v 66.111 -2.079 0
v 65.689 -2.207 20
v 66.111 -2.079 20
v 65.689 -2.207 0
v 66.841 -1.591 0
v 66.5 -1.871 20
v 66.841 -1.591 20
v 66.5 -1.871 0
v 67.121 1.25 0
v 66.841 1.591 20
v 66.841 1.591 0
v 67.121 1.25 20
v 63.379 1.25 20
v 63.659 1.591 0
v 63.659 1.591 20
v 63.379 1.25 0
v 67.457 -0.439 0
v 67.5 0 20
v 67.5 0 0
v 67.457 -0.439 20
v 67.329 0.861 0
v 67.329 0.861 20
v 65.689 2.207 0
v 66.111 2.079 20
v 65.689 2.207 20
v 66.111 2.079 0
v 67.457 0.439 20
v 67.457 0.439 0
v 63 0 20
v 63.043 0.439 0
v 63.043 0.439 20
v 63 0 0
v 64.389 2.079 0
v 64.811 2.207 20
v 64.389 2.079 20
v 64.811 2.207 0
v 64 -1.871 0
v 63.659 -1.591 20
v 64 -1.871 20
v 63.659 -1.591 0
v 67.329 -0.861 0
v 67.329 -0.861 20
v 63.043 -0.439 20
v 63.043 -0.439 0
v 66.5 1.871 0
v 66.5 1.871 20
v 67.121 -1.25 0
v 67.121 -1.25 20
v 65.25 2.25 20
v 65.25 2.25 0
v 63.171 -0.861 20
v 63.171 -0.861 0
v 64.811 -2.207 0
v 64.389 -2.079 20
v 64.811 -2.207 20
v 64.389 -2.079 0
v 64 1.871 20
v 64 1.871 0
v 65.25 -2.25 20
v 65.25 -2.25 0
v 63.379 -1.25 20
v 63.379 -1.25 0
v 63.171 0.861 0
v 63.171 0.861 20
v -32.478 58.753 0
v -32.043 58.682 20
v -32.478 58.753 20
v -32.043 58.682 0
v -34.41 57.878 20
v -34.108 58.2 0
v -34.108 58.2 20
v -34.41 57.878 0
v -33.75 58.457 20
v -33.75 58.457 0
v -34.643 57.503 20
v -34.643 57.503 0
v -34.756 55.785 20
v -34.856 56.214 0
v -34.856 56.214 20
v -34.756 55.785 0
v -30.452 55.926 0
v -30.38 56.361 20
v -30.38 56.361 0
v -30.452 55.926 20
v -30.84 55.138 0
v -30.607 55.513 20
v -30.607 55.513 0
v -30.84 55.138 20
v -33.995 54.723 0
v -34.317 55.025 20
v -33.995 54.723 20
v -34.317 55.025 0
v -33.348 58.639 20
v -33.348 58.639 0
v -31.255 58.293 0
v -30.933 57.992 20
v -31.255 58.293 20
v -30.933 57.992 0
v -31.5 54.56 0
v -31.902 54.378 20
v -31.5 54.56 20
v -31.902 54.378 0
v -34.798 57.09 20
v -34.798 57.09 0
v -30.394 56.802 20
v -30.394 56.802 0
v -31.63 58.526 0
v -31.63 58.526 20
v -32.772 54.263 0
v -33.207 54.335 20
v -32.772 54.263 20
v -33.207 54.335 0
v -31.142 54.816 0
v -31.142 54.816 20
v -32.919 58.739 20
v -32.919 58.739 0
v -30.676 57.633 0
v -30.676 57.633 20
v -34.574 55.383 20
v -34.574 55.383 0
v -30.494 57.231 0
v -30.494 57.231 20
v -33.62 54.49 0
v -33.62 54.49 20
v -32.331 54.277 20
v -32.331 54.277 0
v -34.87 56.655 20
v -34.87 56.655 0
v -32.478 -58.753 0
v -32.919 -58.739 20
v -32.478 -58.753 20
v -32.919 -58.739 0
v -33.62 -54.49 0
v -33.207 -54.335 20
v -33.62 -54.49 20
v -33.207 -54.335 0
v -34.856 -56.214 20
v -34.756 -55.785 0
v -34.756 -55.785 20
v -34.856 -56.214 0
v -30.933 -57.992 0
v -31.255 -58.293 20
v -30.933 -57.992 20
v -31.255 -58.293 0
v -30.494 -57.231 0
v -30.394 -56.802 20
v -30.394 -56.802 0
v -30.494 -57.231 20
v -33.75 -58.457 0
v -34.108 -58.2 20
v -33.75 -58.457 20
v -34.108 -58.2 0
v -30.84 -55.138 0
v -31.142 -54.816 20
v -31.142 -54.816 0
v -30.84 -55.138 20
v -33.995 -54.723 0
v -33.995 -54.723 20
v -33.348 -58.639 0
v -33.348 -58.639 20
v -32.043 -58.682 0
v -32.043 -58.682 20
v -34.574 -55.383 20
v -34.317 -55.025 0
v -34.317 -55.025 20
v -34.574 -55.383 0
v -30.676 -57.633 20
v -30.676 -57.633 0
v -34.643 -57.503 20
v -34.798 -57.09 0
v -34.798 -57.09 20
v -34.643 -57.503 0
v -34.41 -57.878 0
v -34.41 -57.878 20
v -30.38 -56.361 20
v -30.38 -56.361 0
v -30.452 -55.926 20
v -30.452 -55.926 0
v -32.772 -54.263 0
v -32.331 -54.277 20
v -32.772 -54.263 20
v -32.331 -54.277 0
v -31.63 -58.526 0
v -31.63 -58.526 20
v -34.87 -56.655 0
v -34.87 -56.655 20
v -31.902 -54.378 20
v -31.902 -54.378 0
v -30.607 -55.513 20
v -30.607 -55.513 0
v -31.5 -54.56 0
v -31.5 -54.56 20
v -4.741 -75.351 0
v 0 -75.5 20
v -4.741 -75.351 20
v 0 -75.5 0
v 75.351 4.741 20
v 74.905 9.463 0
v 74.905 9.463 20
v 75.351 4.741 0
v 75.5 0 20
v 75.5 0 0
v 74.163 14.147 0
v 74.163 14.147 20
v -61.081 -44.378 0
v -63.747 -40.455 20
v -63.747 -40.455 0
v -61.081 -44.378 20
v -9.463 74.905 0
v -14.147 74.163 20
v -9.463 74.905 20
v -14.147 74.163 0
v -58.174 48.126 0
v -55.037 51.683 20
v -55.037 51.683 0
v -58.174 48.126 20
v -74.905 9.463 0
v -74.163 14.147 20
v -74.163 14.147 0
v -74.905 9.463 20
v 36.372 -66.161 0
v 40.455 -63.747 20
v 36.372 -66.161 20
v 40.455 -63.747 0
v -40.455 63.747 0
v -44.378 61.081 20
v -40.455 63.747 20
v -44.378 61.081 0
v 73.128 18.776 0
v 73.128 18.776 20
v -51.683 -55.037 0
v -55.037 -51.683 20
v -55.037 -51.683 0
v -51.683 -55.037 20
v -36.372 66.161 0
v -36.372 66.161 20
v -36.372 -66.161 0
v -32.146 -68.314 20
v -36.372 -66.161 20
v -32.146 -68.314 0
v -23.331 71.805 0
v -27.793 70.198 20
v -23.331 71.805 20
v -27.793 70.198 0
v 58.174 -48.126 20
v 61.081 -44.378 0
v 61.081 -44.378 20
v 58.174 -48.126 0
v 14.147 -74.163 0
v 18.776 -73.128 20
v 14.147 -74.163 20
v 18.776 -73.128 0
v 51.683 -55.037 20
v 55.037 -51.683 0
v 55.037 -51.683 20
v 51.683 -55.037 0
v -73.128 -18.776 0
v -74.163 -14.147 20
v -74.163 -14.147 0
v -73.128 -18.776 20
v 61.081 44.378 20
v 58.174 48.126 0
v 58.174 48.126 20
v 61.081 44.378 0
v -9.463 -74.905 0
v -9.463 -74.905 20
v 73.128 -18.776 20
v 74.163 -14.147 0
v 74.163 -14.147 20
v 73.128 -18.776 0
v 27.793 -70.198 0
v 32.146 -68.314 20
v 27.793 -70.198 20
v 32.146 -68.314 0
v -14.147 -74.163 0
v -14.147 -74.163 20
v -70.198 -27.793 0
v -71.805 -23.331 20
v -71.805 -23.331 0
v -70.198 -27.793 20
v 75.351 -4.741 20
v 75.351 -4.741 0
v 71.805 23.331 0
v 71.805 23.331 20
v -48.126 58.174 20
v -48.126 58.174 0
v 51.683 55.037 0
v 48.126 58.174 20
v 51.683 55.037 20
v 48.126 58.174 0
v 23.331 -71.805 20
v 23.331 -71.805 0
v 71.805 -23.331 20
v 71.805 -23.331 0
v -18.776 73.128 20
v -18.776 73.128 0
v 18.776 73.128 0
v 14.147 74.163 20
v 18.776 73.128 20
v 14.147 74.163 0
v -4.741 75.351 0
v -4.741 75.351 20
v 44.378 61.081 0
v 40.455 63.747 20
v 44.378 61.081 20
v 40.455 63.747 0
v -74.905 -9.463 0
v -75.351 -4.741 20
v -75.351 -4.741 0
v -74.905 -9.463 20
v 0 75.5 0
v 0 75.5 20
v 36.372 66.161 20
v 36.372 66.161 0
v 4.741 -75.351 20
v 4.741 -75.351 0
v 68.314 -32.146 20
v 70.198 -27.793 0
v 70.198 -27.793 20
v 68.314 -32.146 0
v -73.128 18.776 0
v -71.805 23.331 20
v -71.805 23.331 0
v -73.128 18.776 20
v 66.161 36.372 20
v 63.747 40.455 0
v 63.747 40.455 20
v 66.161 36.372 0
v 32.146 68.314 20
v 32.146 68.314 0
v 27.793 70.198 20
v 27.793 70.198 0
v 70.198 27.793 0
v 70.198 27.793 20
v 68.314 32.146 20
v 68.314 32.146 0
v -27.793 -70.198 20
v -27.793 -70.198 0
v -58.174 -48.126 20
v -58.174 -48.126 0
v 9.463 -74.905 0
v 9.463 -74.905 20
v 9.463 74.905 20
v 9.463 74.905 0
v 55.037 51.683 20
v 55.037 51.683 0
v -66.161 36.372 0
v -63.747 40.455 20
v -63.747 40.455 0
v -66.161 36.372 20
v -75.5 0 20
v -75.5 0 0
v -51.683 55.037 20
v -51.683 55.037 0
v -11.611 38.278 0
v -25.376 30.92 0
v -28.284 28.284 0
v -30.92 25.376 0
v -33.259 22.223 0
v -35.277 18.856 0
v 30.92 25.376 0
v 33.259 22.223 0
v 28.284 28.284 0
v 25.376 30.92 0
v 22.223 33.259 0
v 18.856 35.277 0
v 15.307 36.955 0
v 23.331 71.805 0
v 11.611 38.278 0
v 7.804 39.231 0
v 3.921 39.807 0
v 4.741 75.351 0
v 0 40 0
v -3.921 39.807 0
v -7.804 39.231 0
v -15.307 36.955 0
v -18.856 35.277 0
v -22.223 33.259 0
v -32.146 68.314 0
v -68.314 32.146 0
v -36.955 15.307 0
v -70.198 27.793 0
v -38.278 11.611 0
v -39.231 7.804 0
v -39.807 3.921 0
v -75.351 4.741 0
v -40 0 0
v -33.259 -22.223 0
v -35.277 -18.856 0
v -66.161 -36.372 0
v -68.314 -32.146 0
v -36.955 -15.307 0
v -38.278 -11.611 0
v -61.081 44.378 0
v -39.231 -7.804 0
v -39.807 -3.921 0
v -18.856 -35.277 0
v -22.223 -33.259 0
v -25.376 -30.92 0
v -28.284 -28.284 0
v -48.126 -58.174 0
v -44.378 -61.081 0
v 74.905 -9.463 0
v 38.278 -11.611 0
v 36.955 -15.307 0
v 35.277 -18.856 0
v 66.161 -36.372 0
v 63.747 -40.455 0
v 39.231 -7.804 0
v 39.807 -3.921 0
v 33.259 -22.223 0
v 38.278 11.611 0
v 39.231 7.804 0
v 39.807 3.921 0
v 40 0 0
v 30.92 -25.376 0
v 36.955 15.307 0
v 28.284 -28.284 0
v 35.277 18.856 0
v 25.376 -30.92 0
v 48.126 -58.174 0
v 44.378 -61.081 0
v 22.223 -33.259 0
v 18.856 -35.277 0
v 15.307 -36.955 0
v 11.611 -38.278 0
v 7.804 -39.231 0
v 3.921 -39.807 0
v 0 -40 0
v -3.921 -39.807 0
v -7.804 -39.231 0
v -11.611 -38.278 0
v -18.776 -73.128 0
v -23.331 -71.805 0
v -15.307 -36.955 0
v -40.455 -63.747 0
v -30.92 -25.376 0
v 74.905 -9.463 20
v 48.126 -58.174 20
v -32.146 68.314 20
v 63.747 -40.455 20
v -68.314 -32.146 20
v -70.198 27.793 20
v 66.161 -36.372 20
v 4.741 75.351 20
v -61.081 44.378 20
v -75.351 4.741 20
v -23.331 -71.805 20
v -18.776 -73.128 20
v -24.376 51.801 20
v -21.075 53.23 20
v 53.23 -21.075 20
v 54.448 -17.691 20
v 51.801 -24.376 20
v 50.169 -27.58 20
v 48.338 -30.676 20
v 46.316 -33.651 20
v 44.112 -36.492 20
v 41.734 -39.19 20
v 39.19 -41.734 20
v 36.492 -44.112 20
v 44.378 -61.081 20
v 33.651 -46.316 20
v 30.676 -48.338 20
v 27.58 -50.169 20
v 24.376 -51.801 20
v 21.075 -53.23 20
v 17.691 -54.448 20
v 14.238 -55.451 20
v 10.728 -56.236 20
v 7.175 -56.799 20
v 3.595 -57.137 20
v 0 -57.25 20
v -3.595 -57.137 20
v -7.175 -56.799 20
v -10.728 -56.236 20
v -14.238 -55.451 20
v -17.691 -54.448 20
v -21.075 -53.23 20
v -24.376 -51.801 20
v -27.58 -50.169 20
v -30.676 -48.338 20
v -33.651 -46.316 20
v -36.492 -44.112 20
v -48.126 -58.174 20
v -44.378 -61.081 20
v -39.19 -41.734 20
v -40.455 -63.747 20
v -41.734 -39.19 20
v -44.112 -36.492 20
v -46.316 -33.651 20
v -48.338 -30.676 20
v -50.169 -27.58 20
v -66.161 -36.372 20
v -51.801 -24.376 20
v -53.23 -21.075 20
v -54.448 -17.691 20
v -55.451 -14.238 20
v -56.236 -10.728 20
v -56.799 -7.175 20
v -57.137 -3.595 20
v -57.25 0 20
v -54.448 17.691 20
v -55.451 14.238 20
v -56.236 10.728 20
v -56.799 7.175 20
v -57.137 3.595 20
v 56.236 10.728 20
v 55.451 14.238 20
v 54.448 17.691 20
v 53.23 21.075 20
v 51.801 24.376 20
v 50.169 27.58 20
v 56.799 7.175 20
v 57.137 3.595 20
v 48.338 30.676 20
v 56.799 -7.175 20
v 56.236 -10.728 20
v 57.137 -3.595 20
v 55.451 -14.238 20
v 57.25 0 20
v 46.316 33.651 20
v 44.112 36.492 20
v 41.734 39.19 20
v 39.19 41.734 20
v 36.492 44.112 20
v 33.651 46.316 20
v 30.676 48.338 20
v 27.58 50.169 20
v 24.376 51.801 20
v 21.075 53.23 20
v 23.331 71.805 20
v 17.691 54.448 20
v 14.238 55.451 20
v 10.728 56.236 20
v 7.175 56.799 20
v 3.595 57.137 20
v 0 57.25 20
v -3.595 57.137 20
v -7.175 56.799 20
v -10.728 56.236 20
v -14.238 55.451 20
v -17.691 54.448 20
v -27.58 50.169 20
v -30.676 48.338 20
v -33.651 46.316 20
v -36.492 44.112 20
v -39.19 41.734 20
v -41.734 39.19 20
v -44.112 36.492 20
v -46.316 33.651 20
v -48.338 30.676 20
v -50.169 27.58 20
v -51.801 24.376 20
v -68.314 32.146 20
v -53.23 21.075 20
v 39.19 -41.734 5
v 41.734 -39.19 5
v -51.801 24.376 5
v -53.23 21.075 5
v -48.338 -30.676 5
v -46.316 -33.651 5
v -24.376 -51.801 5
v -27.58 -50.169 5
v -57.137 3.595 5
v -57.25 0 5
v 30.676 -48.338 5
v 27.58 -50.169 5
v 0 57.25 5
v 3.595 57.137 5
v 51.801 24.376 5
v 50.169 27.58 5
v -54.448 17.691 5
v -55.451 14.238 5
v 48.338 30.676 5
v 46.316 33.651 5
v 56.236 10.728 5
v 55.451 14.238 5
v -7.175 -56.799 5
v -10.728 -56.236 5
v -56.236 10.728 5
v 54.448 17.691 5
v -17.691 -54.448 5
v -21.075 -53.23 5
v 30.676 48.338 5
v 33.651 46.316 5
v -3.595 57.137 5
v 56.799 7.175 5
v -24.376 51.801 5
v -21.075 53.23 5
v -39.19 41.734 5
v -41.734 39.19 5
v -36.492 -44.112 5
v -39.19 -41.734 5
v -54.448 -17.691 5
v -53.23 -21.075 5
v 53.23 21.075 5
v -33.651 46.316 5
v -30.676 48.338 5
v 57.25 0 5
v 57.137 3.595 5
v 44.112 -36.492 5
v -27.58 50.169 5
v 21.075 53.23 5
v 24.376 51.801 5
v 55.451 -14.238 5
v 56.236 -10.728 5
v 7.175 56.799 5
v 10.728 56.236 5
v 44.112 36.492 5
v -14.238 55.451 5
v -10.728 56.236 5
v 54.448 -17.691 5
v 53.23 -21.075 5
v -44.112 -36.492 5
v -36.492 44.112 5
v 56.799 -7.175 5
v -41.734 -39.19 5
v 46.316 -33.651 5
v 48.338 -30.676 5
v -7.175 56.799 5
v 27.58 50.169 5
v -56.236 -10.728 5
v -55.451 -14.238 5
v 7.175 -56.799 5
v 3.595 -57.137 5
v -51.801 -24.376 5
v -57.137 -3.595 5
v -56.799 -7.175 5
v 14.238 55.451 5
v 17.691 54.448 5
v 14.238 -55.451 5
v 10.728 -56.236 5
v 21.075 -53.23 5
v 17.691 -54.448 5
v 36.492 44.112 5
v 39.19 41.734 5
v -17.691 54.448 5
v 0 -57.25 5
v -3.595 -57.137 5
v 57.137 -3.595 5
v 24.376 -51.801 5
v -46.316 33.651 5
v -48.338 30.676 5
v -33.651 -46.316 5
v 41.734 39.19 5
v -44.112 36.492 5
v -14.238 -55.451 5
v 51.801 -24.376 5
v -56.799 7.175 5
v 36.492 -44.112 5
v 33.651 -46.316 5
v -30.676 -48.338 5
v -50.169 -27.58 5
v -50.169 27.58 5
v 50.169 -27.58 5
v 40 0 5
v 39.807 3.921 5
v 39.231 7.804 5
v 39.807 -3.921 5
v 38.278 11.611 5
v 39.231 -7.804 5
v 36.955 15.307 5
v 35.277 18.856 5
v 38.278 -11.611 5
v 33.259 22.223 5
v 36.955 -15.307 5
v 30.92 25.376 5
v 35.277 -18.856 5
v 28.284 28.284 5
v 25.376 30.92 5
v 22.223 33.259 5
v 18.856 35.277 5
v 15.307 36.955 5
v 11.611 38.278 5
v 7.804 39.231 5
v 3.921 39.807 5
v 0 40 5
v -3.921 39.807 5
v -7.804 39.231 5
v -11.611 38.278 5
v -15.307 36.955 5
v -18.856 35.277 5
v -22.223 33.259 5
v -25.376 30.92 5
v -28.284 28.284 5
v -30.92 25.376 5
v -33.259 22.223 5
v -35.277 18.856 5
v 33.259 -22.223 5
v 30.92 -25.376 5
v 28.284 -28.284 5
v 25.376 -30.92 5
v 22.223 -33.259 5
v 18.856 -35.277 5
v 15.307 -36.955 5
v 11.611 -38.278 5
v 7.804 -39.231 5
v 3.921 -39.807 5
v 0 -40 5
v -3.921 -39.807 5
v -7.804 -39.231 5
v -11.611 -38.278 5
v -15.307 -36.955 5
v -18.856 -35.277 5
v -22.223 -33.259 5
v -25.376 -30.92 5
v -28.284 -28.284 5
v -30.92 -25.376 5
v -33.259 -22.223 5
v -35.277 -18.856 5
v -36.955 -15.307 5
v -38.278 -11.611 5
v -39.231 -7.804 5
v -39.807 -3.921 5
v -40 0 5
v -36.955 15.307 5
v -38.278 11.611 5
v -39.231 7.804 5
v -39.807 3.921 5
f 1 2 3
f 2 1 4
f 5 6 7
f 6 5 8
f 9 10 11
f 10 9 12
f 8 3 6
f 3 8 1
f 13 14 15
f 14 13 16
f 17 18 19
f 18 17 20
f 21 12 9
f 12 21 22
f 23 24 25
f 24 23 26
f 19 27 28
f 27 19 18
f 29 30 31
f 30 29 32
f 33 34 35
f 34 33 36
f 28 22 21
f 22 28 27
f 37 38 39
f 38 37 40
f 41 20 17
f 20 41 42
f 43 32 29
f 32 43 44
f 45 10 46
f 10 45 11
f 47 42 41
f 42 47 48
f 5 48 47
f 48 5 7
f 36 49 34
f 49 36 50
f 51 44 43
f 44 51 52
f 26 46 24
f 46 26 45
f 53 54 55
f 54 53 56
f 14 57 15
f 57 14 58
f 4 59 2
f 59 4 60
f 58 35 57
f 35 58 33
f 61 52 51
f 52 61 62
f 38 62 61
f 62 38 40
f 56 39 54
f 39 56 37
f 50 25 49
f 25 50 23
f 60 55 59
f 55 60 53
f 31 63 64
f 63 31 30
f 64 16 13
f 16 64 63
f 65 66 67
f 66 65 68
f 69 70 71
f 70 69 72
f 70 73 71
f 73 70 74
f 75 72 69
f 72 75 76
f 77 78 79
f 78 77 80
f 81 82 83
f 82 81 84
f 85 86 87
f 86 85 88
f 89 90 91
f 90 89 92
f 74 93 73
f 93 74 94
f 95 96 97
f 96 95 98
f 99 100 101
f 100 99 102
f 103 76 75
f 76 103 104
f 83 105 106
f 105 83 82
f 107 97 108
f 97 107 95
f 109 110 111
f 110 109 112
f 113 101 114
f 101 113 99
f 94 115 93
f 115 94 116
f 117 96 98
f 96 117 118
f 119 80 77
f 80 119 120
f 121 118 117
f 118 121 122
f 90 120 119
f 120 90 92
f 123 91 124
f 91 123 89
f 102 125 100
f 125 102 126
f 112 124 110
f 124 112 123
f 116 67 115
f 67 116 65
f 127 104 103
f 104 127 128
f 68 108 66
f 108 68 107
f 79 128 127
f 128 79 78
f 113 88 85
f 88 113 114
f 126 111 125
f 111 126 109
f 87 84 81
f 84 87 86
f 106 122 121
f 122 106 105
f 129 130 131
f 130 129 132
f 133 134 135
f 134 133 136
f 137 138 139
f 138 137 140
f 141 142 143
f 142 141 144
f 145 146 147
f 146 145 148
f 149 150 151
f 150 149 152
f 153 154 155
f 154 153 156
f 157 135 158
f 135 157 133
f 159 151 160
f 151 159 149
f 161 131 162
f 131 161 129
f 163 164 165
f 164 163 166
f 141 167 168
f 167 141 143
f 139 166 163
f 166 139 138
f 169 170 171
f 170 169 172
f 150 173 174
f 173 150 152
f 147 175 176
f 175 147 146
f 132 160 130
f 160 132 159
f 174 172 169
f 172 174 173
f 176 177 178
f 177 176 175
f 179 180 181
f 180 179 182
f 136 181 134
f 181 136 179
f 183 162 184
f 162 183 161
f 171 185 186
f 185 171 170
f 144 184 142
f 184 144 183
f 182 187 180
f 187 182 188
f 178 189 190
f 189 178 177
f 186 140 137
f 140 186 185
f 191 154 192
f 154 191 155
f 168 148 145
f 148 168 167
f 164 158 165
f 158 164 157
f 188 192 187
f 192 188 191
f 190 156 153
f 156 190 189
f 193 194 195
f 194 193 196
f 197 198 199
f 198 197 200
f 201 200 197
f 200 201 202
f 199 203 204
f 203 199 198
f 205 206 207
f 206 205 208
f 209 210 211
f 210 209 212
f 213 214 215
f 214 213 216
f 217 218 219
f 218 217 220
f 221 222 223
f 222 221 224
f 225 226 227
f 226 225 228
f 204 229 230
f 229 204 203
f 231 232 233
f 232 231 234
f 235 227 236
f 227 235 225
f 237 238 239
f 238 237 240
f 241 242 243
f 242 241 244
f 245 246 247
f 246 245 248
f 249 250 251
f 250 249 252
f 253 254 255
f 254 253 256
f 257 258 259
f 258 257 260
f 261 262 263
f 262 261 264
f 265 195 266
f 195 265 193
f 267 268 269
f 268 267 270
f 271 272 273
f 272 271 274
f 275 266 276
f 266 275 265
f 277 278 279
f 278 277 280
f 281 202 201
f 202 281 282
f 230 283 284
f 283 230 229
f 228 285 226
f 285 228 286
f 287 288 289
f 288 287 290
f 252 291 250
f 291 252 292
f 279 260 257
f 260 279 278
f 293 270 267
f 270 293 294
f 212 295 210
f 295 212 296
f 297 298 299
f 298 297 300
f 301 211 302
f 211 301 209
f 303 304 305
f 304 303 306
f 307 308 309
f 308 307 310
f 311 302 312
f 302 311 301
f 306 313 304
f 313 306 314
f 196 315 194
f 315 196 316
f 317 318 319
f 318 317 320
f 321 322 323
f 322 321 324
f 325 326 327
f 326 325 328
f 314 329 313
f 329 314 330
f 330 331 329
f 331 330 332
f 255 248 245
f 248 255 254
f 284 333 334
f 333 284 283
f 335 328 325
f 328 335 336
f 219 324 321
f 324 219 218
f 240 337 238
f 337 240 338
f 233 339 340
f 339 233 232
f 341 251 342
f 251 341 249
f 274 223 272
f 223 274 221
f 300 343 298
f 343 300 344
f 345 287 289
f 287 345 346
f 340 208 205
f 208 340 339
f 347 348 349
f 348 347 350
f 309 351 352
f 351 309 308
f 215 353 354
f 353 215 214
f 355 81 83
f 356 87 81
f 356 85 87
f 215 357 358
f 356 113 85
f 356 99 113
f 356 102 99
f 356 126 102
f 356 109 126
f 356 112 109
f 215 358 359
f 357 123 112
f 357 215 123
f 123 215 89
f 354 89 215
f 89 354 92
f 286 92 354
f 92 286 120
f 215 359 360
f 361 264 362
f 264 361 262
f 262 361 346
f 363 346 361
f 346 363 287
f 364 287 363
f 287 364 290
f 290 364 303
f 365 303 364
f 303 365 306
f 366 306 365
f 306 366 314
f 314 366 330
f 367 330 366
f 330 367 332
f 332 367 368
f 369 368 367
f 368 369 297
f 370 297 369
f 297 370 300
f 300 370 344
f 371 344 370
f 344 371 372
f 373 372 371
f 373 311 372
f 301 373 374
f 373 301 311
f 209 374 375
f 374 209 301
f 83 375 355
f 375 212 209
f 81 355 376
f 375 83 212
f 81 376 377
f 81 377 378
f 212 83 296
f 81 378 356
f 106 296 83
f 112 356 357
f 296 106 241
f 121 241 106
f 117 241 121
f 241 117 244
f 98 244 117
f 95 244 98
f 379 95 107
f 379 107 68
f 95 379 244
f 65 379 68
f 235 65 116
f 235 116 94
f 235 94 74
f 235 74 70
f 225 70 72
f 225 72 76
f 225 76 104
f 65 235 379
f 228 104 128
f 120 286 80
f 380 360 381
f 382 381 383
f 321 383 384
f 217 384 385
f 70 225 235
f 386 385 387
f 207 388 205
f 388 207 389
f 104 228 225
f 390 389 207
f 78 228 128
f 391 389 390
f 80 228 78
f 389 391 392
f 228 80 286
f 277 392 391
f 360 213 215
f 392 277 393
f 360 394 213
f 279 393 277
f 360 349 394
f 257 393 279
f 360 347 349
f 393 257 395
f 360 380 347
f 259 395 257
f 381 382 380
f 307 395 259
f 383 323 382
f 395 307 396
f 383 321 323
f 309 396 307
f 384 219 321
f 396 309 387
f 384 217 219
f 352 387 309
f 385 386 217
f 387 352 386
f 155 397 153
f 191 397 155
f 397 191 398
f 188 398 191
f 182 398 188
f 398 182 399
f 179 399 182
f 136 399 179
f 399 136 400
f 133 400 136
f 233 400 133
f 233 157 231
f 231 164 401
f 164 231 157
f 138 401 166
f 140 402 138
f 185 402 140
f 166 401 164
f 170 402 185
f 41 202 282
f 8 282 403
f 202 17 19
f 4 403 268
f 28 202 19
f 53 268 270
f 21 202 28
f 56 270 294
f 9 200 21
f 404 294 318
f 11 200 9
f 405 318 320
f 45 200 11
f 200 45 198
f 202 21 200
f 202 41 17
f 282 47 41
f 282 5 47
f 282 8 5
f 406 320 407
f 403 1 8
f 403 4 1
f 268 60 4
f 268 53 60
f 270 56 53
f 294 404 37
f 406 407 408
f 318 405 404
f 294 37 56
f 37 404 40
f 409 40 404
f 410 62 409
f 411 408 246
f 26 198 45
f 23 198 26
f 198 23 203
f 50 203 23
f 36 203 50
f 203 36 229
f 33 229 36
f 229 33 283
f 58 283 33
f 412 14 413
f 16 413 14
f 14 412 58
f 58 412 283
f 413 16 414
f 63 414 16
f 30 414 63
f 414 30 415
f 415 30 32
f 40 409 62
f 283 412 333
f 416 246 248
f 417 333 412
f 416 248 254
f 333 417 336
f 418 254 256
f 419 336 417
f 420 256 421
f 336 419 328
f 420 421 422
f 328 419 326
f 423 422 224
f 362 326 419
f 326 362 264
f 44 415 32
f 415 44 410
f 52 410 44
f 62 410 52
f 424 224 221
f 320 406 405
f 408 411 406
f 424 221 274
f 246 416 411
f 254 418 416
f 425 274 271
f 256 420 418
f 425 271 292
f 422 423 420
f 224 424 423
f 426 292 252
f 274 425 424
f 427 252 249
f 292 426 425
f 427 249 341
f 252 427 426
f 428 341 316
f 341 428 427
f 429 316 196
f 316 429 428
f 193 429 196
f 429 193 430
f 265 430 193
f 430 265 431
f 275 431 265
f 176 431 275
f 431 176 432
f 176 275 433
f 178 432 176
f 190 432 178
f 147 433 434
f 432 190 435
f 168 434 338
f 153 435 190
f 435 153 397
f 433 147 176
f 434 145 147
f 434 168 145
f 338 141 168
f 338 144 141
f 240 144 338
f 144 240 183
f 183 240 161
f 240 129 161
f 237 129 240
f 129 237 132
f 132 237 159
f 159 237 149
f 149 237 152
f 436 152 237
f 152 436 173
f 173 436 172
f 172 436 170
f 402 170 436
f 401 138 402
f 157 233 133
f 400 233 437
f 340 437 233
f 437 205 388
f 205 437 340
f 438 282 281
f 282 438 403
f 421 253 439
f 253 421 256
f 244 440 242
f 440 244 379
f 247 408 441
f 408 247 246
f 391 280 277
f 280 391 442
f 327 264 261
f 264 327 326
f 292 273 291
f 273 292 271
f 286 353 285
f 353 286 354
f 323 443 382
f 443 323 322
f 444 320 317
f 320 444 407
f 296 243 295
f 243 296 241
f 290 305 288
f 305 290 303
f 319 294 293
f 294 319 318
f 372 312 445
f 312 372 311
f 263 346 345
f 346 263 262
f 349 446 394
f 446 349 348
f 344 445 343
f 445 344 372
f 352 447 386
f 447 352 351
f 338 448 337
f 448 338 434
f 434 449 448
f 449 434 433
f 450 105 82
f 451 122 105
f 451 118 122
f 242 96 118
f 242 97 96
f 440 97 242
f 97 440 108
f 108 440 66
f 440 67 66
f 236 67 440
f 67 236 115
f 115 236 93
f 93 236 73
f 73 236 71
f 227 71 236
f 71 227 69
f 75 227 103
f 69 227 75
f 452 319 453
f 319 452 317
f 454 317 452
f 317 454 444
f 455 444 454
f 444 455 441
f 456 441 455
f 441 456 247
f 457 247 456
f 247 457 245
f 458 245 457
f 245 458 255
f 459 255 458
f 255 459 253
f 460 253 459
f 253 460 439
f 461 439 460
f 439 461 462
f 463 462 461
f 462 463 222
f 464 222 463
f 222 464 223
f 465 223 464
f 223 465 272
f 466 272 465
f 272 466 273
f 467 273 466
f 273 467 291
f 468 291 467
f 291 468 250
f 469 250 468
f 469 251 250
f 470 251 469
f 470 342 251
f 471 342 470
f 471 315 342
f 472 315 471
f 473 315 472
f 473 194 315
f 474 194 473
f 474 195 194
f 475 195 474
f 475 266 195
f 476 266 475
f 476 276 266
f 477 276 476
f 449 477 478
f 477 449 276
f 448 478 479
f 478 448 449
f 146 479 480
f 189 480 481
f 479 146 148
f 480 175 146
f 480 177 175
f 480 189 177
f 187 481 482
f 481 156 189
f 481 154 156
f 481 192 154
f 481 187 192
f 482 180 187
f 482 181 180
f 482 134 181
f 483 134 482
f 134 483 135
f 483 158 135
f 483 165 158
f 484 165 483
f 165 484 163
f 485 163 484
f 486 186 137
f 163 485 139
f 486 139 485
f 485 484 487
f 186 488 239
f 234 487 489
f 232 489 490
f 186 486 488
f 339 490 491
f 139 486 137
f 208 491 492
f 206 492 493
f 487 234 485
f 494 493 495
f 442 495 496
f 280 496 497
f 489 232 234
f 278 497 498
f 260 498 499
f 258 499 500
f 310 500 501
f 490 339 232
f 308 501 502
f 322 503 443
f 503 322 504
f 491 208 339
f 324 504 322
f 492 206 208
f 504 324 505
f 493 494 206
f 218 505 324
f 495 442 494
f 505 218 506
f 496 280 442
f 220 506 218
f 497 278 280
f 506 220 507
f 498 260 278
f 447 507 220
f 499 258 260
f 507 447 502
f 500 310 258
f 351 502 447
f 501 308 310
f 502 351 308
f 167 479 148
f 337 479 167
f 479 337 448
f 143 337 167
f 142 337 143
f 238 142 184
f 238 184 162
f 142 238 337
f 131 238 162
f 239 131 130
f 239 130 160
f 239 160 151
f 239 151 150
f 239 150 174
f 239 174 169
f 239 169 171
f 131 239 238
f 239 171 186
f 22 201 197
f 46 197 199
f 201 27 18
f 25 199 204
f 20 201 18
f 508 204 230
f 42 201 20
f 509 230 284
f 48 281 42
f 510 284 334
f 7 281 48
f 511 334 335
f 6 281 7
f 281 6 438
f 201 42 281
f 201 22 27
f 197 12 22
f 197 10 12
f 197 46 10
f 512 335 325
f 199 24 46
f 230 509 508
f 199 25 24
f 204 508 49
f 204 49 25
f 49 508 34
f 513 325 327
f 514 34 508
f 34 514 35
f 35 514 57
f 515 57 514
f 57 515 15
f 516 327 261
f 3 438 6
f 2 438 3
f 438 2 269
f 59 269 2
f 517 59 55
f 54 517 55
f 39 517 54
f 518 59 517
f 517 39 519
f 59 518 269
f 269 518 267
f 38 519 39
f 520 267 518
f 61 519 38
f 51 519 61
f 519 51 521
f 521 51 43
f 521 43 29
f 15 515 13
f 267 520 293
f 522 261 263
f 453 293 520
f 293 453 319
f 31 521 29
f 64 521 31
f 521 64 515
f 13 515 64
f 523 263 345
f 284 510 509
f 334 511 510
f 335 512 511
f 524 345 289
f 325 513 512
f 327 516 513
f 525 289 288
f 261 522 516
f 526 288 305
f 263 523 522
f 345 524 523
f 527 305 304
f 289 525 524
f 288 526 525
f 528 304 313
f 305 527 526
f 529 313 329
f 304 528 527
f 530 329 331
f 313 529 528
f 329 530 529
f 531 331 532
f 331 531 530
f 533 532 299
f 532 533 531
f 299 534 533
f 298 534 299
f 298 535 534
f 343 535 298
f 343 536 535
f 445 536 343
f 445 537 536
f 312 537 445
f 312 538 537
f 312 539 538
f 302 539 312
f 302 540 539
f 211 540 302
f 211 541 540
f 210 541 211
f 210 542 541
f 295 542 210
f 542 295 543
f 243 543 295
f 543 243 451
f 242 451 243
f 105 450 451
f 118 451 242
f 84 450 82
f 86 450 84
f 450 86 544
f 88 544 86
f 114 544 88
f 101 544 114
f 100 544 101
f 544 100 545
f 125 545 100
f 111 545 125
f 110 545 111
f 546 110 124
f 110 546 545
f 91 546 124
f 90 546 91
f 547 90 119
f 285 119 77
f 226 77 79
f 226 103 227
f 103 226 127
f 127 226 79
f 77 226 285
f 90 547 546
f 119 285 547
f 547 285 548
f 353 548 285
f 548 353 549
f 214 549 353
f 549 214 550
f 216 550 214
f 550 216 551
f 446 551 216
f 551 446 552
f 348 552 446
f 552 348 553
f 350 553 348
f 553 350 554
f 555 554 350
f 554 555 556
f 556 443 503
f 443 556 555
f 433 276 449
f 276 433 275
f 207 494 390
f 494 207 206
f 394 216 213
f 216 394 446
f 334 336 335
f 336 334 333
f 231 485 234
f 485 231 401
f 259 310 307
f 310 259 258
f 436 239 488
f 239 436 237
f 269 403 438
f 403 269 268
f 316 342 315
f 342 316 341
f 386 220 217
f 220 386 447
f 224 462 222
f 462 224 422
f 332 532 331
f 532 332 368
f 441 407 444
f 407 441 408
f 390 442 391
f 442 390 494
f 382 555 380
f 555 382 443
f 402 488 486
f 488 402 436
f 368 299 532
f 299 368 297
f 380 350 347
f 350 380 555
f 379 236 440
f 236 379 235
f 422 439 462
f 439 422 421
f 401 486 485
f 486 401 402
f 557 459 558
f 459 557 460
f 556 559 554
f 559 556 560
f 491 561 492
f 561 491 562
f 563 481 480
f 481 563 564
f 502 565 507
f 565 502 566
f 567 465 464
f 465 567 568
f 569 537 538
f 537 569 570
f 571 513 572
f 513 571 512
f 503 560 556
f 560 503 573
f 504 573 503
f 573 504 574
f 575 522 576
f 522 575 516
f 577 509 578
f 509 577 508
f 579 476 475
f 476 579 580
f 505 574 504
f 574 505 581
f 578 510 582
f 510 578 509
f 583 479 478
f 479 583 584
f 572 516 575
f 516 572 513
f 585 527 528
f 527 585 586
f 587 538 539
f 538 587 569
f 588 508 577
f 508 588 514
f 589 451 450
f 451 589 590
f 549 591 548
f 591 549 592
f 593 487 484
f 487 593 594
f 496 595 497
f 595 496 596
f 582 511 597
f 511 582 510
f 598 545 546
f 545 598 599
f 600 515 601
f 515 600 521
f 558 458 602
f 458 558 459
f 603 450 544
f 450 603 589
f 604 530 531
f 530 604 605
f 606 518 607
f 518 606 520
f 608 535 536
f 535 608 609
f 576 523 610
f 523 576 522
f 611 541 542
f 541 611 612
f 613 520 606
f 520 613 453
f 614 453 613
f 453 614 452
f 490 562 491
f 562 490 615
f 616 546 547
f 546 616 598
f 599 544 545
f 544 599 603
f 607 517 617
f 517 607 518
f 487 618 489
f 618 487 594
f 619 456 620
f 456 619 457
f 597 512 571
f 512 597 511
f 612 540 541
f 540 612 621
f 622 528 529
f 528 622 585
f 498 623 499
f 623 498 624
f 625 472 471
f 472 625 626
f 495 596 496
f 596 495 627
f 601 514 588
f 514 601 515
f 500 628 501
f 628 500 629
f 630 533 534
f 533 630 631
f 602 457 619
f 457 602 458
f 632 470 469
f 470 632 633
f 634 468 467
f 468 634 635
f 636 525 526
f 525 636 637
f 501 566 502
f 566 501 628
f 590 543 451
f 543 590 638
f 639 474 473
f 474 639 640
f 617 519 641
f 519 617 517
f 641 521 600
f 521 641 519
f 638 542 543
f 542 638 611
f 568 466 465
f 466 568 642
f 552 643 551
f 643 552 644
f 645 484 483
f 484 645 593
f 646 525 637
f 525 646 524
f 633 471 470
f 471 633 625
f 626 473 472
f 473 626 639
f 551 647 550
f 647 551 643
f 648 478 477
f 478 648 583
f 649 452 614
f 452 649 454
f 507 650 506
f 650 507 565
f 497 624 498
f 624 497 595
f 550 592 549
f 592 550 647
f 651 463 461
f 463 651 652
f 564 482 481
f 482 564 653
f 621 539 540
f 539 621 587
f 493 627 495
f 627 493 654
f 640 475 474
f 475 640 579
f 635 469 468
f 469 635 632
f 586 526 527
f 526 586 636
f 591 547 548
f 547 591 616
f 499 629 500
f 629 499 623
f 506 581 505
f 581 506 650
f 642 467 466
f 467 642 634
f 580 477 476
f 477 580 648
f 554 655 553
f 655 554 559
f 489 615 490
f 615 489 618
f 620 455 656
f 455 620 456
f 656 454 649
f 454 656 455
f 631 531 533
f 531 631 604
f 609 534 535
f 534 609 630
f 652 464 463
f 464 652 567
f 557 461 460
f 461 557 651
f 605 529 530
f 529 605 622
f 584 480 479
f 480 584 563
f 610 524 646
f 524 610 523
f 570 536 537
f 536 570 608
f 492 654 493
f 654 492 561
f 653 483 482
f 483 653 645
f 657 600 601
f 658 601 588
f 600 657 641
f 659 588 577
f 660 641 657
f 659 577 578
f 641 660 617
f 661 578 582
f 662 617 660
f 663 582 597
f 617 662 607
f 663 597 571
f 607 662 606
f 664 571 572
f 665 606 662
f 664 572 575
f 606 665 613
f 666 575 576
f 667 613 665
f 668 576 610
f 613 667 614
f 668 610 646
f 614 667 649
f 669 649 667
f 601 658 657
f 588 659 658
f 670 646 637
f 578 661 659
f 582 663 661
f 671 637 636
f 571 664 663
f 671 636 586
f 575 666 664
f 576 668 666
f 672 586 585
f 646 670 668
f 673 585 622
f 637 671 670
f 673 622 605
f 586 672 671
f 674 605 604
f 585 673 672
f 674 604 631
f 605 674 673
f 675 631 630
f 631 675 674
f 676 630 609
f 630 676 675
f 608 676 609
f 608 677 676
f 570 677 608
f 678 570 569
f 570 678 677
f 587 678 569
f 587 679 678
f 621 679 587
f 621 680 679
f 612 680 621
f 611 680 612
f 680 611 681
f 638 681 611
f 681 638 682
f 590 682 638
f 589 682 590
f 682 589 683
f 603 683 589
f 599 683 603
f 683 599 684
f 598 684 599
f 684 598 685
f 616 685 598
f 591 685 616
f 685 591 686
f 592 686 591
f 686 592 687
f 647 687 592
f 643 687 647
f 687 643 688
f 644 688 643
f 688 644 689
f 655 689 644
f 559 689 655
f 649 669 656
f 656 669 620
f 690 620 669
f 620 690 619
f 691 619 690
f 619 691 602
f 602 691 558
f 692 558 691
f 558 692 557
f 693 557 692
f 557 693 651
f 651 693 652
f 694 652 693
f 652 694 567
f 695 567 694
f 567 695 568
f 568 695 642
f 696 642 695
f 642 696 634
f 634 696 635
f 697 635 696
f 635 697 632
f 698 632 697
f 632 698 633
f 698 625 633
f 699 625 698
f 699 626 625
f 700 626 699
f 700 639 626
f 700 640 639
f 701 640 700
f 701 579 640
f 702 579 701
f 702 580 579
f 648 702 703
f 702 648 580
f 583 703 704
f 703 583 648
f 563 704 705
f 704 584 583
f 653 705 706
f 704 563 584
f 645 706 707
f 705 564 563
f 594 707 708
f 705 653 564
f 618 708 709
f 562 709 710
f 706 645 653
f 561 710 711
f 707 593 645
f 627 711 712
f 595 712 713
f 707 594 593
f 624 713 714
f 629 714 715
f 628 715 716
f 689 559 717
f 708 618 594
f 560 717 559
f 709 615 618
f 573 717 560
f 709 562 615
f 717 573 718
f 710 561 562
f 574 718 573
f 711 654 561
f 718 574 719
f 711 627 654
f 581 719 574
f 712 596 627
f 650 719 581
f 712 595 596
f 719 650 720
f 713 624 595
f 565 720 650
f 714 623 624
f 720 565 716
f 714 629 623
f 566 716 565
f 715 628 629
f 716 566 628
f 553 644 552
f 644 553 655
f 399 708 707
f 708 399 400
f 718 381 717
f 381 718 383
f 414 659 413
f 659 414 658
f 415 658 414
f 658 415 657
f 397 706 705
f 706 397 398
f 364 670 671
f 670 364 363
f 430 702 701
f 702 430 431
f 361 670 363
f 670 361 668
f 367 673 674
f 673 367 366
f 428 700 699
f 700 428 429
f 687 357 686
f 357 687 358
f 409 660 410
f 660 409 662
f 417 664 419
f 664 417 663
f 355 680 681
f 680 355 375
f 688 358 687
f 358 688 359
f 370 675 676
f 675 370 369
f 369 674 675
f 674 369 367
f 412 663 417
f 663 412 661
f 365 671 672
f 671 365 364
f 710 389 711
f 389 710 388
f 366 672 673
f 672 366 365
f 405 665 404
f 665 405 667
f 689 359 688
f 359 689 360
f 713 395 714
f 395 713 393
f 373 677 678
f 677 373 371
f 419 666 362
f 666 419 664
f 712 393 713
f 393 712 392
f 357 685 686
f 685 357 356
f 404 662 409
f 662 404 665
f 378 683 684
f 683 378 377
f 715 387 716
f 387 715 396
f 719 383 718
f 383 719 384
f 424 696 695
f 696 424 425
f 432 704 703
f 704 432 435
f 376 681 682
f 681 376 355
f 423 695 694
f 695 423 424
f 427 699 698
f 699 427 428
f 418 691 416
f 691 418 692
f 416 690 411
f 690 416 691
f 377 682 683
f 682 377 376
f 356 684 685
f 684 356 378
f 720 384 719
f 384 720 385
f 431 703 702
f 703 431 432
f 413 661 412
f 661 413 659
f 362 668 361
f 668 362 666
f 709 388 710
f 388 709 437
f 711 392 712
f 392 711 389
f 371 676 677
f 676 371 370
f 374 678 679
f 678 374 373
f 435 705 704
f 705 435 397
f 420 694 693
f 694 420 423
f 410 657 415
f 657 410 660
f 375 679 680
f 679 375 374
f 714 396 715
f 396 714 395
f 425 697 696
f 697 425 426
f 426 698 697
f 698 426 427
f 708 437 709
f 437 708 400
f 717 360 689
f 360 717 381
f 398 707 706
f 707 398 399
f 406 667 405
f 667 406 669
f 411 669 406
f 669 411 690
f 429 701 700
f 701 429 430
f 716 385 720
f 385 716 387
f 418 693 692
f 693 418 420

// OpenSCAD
// 114mm Newtonian Primary Mirror Cell (主镜座)
// 单位: mm
// 配合 M4 推拉螺丝和弹簧使用

mirror_dia = 114.5; // 主镜直径，留有0.5mm公差
mirror_thickness = 15; // 主镜厚度
tube_id = 152; // 镜筒内径 (例如 160mm PVC管的内径)
tube_thickness = 4; // 镜筒壁厚

module mirror_cell() {
    difference() {
        // 主体圆柱
        cylinder(d=tube_id - 1, h=20, $fn=100);
        
        // 主镜放置坑位
        translate([0, 0, 5])
        cylinder(d=mirror_dia, h=20, $fn=100);
        
        // 中心偷轻/通风孔 (加快主镜热平衡)
        translate([0, 0, -1])
        cylinder(d=80, h=30, $fn=64);
        
        // 调节螺丝孔 (3个, 120度均匀分布)
        for(i=[0:2]) {
            rotate([0, 0, i*120])
            translate([mirror_dia/2 + 8, 0, -1])
            cylinder(d=4.5, h=30, $fn=32); // 适用 M4 螺丝
        }
    }
}

mirror_cell();
